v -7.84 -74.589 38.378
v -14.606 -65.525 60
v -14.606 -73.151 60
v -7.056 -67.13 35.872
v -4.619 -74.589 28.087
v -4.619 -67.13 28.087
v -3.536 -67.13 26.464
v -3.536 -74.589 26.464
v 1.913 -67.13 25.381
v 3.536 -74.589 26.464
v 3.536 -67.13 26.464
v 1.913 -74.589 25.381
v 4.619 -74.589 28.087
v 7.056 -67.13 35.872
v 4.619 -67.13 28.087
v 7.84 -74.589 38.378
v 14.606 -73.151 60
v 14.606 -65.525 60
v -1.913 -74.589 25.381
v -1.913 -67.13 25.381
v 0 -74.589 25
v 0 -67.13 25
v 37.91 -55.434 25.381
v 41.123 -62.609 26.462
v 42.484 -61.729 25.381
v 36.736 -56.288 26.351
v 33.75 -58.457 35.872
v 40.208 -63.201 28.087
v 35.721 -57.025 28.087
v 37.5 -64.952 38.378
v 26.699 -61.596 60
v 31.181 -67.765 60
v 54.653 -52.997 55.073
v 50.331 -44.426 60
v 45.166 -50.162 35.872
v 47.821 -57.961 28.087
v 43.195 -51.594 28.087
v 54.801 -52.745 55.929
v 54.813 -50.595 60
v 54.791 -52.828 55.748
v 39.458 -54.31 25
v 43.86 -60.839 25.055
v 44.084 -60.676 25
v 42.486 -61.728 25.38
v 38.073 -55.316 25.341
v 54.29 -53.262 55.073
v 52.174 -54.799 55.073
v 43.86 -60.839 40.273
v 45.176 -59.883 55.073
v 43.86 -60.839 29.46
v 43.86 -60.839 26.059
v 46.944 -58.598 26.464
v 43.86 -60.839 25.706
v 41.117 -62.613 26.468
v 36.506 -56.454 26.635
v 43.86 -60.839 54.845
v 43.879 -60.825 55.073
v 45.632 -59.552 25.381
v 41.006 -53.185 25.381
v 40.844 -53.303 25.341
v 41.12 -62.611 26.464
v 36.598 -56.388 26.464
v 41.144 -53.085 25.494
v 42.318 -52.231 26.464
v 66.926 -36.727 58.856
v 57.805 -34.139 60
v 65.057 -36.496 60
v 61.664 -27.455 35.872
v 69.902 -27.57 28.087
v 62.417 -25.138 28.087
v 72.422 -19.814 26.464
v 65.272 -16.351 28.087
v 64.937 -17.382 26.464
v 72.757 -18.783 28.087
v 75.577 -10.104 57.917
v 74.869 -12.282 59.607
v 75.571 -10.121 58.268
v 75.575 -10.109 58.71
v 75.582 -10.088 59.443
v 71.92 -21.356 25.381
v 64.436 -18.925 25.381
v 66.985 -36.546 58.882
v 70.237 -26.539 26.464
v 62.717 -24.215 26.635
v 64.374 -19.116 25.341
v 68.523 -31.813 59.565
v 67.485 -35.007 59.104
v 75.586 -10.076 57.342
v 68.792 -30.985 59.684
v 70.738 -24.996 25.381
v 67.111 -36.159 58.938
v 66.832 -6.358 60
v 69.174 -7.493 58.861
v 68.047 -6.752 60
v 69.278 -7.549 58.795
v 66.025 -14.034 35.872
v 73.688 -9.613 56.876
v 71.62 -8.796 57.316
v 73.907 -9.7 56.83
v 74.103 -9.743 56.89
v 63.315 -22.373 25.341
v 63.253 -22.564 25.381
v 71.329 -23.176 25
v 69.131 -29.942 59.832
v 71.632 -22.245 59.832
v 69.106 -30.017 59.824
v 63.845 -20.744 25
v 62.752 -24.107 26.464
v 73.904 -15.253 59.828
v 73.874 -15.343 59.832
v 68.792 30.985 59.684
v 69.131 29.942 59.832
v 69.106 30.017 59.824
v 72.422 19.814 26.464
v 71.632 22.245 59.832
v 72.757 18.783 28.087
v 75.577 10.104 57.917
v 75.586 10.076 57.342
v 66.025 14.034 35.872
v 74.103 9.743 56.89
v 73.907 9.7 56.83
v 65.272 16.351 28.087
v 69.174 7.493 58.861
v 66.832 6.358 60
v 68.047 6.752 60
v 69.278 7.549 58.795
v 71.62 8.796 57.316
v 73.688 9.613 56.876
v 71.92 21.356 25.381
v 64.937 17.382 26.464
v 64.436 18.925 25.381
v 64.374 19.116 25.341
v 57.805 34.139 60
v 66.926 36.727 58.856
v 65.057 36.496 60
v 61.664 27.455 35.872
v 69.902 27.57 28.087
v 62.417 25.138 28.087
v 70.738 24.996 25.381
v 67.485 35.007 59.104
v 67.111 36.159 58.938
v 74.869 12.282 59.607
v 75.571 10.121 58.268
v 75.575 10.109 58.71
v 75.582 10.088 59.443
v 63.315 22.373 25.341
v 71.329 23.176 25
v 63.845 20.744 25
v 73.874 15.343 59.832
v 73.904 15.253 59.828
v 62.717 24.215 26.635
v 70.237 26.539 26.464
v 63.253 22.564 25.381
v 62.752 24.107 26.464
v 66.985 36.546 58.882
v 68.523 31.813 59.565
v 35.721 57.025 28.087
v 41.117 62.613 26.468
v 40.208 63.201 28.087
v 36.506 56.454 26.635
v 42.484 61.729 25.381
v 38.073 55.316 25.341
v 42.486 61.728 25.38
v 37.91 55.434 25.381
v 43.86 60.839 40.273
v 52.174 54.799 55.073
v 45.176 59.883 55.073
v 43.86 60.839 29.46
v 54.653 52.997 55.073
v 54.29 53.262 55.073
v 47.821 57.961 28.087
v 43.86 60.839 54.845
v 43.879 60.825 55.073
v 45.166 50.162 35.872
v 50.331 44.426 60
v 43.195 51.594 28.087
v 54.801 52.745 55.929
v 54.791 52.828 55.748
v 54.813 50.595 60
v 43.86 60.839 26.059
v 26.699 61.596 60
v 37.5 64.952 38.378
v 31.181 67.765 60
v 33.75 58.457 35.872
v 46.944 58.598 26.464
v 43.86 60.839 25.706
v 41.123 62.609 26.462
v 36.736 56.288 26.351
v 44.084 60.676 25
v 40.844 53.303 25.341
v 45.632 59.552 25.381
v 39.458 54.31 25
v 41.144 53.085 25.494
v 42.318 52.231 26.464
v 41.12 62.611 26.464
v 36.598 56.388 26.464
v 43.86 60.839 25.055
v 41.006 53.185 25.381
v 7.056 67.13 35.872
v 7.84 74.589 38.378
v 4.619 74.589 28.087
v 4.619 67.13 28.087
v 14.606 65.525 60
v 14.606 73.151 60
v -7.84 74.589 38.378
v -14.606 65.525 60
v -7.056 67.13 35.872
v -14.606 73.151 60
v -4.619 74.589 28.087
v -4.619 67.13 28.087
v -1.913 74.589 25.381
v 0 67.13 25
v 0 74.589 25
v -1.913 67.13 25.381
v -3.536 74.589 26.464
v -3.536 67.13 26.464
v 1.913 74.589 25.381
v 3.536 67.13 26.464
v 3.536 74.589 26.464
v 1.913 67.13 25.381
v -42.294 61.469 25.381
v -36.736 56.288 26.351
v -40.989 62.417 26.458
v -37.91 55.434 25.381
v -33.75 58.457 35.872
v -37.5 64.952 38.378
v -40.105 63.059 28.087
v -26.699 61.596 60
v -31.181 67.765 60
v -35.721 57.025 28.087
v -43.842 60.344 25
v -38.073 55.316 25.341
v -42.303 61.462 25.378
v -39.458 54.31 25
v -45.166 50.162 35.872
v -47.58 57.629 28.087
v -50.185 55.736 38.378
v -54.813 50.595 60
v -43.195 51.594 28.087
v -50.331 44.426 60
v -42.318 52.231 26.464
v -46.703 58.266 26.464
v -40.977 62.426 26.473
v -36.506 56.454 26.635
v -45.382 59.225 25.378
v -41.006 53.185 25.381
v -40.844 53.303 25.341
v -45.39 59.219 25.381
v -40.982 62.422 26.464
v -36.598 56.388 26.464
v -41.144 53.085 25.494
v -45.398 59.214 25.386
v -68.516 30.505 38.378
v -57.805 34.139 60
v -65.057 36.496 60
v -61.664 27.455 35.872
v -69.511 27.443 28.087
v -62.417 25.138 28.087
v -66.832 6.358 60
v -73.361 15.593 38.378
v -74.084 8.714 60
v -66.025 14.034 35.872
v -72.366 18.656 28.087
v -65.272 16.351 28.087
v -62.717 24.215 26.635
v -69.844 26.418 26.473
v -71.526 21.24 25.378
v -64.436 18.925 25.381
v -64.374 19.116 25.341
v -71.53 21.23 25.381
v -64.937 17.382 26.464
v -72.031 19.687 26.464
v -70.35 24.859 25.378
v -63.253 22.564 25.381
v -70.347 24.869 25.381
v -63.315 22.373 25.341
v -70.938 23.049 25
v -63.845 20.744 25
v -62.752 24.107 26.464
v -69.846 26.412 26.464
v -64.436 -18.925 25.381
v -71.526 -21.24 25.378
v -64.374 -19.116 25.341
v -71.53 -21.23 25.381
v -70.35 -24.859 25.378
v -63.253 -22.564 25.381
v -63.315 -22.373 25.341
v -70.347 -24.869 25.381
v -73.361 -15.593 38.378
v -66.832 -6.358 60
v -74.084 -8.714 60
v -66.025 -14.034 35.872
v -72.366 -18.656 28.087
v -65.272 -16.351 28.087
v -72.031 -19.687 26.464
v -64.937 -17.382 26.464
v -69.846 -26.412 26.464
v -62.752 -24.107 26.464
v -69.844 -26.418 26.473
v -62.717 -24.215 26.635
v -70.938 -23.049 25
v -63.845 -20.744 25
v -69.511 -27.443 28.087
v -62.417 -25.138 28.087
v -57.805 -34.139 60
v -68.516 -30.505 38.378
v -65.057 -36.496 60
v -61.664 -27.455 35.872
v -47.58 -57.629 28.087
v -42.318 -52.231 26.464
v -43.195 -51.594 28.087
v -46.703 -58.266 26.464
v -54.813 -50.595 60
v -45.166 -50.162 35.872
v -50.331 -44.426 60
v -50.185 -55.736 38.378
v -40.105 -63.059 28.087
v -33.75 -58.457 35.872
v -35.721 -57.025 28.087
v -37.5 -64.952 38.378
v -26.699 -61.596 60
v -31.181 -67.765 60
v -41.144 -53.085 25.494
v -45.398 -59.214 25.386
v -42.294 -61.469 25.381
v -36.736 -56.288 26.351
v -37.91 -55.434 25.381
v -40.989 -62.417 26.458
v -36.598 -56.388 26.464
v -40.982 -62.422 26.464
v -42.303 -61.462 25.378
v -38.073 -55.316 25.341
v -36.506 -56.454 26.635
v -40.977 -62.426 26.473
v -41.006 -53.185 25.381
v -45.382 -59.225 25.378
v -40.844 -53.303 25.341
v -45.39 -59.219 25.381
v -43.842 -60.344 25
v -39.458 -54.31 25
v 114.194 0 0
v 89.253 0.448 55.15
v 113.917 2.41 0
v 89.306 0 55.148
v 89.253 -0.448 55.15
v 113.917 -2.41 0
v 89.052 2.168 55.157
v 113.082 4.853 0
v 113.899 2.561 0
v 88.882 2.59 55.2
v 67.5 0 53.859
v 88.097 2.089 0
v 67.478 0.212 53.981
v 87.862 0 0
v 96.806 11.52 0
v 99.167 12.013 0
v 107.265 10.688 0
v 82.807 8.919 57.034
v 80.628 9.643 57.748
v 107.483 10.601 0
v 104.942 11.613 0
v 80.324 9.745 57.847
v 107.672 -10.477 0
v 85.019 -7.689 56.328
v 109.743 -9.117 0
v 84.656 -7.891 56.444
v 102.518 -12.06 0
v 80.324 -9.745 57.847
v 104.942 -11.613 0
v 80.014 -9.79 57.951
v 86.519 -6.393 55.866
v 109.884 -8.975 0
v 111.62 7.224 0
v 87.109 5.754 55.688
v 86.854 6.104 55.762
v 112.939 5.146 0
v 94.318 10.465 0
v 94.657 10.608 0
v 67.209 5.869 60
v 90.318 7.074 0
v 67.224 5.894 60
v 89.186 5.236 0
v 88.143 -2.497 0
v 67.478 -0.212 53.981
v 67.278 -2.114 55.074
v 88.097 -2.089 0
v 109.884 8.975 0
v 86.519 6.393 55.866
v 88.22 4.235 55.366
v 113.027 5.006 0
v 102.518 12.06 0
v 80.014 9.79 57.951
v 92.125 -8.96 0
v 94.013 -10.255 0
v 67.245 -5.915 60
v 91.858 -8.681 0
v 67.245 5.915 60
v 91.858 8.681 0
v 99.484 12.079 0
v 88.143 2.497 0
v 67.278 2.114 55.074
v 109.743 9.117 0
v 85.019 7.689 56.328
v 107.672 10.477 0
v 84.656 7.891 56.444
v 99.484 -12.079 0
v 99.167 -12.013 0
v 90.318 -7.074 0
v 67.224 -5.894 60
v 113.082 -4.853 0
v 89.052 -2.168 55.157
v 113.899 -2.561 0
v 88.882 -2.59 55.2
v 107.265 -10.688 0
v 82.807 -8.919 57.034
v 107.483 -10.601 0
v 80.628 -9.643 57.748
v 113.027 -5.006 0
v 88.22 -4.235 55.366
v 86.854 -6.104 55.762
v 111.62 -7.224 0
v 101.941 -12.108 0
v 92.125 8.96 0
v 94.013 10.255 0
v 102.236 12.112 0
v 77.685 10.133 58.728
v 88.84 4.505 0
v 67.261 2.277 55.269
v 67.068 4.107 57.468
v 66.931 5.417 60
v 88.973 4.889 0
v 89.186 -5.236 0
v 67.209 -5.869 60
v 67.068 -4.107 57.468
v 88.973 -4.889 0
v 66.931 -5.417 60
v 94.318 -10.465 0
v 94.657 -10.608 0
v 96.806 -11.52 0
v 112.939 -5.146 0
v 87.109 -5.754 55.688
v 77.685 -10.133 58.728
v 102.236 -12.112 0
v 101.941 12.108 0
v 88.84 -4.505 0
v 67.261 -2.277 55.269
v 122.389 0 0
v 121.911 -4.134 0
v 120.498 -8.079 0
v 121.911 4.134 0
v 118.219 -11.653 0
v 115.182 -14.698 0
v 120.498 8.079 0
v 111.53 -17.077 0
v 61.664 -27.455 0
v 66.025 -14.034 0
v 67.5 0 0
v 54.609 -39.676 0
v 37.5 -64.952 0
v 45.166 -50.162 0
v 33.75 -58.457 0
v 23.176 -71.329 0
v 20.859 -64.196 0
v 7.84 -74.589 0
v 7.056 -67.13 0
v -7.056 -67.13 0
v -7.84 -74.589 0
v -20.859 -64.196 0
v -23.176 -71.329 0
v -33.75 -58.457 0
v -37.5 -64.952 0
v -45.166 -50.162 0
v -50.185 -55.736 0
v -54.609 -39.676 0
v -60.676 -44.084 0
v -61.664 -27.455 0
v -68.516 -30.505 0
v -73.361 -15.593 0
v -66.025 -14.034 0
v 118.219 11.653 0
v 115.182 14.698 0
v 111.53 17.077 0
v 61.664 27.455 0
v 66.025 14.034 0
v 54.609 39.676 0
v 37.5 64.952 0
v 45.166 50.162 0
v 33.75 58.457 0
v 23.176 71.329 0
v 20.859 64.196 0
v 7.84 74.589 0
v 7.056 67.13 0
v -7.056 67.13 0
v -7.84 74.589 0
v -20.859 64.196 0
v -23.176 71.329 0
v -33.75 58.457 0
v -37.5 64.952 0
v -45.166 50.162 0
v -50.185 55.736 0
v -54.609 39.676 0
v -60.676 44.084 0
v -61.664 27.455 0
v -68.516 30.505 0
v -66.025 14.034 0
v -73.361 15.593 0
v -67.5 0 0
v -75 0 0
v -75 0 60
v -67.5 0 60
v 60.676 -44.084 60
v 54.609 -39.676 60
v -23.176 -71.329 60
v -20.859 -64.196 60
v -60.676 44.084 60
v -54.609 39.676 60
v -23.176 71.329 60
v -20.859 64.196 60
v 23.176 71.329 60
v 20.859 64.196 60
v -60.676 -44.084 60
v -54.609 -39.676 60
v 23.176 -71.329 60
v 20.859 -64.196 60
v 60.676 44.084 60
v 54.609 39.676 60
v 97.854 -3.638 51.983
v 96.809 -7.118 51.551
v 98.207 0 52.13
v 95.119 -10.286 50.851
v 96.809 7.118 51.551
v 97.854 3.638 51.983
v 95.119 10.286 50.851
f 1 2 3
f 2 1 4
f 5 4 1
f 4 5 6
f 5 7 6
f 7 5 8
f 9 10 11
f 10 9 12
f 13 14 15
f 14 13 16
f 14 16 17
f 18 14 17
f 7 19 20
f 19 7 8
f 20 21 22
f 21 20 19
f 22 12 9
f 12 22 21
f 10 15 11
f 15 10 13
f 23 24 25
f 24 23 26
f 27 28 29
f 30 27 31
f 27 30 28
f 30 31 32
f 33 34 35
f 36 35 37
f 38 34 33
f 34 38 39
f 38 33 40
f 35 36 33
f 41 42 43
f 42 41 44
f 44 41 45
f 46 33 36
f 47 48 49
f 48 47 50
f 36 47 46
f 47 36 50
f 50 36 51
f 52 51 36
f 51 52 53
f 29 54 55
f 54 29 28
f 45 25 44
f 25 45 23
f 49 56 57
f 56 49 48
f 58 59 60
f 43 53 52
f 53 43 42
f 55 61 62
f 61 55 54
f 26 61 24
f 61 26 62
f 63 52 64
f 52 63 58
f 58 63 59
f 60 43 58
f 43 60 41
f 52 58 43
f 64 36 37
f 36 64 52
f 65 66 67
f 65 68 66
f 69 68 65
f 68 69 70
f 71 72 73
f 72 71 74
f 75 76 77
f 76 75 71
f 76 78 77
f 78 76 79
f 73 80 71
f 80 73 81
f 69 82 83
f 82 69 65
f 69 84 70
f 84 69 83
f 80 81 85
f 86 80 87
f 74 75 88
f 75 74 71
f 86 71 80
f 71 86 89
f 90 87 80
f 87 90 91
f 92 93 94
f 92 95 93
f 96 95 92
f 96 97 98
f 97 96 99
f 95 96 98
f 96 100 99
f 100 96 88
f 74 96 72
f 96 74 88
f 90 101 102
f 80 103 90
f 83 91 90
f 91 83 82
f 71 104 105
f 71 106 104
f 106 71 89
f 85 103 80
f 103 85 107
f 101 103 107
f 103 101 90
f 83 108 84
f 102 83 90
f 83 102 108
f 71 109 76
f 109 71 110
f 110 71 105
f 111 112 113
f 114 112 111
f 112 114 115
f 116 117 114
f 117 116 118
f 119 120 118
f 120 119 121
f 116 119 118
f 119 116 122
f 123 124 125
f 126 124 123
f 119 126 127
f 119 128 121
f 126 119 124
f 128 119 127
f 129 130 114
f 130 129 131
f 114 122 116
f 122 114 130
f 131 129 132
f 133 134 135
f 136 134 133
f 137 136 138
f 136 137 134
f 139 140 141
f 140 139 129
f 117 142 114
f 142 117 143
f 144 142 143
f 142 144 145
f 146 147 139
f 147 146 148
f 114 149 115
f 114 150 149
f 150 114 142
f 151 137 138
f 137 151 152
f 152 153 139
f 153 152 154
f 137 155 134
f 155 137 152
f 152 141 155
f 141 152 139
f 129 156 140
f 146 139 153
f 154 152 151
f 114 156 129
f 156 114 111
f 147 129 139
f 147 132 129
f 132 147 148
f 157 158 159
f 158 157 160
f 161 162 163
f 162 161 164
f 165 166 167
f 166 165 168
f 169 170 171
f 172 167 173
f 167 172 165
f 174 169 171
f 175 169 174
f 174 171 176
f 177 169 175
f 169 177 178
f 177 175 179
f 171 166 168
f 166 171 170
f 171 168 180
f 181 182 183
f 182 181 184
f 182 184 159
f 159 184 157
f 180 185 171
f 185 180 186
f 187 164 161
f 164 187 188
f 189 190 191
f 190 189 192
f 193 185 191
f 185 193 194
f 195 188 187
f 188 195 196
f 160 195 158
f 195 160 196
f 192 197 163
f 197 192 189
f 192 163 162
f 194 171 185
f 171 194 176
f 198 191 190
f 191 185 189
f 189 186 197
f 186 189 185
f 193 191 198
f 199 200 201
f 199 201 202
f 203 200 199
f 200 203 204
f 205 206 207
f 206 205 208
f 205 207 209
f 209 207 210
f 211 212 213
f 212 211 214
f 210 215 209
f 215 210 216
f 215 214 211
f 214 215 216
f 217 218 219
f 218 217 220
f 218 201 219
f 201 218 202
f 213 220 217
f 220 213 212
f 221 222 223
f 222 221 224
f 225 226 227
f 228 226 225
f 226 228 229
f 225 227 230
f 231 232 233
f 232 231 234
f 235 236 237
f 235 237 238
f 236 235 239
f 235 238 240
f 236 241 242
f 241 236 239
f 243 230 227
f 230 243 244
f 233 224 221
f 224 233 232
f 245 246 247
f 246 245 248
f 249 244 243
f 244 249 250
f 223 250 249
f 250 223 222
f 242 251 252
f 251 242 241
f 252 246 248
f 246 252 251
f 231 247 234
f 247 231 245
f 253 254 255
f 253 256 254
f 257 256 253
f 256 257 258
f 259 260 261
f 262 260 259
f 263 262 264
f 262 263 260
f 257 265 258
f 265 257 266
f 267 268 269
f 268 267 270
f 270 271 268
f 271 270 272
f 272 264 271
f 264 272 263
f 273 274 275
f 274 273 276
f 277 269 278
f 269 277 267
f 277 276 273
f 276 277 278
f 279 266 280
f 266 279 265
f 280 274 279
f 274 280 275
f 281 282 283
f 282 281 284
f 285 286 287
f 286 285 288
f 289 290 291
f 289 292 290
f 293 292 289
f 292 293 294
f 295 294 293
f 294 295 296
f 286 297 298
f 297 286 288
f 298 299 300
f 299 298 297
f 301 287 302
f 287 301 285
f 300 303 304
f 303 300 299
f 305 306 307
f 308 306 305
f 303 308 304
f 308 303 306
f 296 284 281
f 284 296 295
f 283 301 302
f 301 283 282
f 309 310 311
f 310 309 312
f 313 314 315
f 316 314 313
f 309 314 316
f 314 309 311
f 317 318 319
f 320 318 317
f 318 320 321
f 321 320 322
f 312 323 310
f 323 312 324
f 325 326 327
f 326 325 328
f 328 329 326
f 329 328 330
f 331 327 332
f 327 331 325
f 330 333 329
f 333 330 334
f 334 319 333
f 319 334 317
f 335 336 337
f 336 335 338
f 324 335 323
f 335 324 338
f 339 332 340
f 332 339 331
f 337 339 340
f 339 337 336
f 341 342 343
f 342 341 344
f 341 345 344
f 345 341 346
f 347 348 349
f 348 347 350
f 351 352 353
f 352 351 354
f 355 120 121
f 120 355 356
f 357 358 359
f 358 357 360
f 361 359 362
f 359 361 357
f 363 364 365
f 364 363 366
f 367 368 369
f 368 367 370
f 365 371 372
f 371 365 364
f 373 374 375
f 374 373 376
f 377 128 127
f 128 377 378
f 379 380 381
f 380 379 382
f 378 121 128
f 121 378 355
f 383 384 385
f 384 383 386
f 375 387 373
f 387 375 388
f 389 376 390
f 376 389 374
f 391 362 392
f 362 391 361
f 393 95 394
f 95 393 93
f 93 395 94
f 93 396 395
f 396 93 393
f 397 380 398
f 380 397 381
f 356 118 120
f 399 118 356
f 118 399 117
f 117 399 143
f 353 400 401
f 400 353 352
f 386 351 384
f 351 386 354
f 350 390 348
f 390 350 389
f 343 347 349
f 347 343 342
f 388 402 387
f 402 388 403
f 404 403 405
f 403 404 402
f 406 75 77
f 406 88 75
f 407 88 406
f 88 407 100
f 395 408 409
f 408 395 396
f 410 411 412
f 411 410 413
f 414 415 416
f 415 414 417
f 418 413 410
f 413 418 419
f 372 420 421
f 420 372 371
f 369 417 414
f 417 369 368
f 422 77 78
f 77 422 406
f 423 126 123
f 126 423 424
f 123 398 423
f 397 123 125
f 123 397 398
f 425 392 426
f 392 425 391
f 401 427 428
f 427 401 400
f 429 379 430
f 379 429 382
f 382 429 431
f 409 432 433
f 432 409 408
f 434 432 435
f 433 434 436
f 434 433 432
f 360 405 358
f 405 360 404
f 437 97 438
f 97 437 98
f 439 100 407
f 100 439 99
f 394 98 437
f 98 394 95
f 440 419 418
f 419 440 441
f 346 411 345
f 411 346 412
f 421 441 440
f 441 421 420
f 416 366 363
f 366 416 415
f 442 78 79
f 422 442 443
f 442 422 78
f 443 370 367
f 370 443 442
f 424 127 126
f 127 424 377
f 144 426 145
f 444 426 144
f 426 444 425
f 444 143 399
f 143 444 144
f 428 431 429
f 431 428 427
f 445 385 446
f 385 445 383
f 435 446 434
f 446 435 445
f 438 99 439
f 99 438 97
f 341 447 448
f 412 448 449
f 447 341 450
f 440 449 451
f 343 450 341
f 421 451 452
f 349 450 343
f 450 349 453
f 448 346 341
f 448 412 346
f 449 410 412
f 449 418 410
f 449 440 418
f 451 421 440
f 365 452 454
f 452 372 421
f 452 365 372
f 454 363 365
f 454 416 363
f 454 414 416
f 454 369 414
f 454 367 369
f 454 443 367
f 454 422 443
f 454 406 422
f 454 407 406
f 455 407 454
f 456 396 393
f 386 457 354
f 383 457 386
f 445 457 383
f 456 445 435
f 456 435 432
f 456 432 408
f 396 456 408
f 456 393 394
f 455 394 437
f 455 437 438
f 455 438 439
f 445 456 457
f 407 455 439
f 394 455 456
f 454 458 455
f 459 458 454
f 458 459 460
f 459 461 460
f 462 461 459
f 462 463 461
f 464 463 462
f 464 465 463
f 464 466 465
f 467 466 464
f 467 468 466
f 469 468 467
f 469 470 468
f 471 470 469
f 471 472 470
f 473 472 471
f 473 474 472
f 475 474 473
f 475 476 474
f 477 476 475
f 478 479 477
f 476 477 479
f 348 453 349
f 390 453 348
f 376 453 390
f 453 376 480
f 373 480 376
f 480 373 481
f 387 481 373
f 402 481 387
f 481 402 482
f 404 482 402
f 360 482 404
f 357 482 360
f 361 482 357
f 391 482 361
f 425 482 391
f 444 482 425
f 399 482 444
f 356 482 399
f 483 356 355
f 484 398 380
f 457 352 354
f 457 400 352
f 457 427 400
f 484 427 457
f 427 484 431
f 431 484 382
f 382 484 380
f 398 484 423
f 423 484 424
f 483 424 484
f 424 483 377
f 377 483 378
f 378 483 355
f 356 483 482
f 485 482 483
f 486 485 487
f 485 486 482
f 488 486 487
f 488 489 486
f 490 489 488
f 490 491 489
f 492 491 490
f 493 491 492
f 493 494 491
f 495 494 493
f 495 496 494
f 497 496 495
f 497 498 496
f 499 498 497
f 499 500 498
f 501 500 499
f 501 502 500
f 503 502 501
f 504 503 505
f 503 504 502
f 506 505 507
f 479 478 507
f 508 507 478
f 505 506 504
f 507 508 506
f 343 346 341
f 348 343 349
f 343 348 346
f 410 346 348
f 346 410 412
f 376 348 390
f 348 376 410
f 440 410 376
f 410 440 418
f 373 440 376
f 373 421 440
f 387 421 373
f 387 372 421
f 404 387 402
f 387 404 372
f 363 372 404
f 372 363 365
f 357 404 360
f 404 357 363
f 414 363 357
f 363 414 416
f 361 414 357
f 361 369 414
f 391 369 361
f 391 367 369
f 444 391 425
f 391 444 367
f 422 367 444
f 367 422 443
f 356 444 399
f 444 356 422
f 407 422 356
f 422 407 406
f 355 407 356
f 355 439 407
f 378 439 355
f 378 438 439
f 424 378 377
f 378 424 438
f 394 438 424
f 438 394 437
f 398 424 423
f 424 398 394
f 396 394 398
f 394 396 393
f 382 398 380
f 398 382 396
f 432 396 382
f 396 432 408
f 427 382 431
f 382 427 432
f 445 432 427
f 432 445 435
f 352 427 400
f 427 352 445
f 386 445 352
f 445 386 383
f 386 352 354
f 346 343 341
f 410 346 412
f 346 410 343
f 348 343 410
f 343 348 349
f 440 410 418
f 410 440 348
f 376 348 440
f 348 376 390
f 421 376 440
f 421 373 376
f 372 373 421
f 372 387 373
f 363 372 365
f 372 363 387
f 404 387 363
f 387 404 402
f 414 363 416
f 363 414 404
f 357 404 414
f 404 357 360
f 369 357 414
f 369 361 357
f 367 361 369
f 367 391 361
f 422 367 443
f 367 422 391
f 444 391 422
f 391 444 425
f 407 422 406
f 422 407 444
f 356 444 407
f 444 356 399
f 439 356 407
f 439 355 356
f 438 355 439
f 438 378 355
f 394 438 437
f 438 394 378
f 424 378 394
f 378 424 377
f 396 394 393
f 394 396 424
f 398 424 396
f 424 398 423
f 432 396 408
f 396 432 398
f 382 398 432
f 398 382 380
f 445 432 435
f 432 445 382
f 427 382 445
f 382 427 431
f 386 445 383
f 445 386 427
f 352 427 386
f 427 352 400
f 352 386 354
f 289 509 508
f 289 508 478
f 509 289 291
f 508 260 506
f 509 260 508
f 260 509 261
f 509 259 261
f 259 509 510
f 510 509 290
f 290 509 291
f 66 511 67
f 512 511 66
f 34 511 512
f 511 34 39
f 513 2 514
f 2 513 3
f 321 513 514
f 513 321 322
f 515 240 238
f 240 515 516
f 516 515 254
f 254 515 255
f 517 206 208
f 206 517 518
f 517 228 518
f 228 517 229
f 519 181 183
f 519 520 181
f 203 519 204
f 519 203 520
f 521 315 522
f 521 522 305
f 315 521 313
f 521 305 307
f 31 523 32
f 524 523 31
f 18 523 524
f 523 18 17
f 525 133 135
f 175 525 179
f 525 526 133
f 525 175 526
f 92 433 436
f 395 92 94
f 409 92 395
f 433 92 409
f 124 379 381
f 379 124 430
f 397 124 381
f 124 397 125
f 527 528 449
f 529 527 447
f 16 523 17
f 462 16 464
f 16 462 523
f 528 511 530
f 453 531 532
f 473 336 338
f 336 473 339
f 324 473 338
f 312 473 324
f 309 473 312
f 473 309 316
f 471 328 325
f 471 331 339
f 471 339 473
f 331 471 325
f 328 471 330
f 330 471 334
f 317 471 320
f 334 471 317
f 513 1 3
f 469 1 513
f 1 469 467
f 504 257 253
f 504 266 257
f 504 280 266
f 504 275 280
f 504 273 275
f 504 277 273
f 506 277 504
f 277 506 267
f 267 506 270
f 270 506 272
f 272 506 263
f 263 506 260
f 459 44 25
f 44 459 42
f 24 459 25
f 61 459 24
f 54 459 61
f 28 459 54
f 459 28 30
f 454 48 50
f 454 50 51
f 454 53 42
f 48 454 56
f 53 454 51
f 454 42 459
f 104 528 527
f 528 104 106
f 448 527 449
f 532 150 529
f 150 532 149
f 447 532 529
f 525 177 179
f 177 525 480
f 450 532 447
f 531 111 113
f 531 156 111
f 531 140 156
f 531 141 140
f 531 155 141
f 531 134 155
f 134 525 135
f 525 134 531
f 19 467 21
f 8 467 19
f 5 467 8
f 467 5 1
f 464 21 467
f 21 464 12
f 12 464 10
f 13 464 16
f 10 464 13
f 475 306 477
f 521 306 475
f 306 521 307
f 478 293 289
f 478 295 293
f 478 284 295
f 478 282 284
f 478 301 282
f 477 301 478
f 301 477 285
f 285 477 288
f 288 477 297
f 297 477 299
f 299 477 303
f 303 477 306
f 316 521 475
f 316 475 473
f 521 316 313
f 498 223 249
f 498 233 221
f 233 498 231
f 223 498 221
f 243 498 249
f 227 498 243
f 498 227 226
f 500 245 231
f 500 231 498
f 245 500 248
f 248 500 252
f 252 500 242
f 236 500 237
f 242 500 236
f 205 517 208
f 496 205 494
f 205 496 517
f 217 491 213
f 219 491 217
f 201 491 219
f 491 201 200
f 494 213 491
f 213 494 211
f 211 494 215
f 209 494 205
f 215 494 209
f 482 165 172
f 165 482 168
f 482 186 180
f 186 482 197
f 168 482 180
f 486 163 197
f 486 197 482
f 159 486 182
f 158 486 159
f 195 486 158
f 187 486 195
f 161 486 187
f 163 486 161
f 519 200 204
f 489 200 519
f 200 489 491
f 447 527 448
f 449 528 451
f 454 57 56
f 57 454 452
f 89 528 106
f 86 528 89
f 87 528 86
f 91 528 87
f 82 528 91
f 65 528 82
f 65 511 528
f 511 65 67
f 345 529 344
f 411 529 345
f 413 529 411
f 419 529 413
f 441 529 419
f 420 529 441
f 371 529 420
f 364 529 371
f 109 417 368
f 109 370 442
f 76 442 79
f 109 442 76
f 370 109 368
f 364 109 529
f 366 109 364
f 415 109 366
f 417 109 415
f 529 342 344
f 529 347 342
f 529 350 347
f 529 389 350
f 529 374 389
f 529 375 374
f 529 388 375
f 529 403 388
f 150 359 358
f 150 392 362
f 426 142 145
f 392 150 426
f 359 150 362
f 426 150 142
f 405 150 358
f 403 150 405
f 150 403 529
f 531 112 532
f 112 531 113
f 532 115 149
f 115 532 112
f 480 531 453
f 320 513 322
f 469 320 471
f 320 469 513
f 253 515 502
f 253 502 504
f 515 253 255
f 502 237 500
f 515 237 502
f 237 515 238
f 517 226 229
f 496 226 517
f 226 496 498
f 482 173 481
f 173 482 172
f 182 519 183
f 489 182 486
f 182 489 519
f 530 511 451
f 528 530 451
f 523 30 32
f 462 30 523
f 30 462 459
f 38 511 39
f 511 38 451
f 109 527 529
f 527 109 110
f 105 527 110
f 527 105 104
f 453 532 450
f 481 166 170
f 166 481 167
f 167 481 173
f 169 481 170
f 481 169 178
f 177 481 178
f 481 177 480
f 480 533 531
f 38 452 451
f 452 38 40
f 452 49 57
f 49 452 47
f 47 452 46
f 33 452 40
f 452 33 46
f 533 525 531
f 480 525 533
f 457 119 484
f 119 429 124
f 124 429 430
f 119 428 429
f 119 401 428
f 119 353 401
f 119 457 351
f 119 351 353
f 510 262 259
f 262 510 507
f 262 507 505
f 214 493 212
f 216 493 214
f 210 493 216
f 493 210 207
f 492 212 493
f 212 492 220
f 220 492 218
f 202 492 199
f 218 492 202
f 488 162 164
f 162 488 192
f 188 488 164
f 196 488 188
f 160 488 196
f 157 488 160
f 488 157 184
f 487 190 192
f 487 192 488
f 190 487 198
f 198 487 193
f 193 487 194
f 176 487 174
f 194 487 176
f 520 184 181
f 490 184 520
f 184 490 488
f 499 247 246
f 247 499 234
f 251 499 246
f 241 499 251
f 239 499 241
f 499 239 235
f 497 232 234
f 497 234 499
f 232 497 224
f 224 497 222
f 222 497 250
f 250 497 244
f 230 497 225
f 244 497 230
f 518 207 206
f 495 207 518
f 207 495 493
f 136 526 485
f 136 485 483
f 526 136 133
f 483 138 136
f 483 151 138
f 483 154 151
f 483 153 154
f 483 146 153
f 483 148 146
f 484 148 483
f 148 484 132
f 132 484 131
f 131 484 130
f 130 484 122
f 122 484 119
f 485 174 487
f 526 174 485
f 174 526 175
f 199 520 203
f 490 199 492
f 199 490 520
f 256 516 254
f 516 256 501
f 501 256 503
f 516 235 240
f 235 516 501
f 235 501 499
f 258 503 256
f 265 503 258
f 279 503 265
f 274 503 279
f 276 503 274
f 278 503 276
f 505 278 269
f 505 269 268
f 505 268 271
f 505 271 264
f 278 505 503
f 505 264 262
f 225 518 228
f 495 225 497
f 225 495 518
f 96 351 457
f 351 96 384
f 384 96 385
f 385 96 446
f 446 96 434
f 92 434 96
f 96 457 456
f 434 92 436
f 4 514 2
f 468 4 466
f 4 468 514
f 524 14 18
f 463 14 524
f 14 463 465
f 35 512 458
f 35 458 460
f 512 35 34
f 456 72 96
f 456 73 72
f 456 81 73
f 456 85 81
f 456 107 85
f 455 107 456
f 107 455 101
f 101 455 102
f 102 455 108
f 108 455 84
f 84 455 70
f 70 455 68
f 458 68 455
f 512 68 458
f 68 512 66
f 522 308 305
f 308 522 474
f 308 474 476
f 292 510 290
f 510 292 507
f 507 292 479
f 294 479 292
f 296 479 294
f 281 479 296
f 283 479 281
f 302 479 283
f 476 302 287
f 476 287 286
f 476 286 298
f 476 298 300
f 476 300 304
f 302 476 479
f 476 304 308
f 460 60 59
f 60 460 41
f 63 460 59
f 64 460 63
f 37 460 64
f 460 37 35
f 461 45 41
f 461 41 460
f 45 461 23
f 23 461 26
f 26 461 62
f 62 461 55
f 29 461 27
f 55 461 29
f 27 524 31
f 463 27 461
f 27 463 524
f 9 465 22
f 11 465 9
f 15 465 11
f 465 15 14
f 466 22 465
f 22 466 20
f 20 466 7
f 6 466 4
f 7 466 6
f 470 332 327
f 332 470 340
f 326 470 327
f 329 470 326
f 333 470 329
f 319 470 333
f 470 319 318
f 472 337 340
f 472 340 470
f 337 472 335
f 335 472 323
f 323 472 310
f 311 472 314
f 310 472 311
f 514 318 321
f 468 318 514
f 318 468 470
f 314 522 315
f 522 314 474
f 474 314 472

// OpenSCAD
d=150;
w=7.5;
h=60;
hs=30;

dc=20;

difference()
{
    hull()
    {
        cylinder(d=d,h=h);
        holder(w,60);
    }
    cylinder(d=d-2*w,h=h+5);
    for(i =  [0:360/10:360])
    {
        rotate([0,0,i])
        translate([0,0,hs])
        n_teeth();        
    }
    #holder(0,60+20);
}

module holder(w=0,h=60)
{
    difference()
    {
        translate([d/2+30,0,-10])
        rotate([0,-90/4*1,0])
        cylinder(d1=dc+2*w+5, d2=dc+2*w,h=h);
        
        translate([-500,-500,-100])
        cube([1000,1000,100]);
    }
}

module n_teeth()
{
    h=d/2;
    rotate([90,0,0])
    hull()
    {
        cylinder(d=10,h=h);
        translate([0,50,0])
        cylinder(d=40,h=h);
    }
}
